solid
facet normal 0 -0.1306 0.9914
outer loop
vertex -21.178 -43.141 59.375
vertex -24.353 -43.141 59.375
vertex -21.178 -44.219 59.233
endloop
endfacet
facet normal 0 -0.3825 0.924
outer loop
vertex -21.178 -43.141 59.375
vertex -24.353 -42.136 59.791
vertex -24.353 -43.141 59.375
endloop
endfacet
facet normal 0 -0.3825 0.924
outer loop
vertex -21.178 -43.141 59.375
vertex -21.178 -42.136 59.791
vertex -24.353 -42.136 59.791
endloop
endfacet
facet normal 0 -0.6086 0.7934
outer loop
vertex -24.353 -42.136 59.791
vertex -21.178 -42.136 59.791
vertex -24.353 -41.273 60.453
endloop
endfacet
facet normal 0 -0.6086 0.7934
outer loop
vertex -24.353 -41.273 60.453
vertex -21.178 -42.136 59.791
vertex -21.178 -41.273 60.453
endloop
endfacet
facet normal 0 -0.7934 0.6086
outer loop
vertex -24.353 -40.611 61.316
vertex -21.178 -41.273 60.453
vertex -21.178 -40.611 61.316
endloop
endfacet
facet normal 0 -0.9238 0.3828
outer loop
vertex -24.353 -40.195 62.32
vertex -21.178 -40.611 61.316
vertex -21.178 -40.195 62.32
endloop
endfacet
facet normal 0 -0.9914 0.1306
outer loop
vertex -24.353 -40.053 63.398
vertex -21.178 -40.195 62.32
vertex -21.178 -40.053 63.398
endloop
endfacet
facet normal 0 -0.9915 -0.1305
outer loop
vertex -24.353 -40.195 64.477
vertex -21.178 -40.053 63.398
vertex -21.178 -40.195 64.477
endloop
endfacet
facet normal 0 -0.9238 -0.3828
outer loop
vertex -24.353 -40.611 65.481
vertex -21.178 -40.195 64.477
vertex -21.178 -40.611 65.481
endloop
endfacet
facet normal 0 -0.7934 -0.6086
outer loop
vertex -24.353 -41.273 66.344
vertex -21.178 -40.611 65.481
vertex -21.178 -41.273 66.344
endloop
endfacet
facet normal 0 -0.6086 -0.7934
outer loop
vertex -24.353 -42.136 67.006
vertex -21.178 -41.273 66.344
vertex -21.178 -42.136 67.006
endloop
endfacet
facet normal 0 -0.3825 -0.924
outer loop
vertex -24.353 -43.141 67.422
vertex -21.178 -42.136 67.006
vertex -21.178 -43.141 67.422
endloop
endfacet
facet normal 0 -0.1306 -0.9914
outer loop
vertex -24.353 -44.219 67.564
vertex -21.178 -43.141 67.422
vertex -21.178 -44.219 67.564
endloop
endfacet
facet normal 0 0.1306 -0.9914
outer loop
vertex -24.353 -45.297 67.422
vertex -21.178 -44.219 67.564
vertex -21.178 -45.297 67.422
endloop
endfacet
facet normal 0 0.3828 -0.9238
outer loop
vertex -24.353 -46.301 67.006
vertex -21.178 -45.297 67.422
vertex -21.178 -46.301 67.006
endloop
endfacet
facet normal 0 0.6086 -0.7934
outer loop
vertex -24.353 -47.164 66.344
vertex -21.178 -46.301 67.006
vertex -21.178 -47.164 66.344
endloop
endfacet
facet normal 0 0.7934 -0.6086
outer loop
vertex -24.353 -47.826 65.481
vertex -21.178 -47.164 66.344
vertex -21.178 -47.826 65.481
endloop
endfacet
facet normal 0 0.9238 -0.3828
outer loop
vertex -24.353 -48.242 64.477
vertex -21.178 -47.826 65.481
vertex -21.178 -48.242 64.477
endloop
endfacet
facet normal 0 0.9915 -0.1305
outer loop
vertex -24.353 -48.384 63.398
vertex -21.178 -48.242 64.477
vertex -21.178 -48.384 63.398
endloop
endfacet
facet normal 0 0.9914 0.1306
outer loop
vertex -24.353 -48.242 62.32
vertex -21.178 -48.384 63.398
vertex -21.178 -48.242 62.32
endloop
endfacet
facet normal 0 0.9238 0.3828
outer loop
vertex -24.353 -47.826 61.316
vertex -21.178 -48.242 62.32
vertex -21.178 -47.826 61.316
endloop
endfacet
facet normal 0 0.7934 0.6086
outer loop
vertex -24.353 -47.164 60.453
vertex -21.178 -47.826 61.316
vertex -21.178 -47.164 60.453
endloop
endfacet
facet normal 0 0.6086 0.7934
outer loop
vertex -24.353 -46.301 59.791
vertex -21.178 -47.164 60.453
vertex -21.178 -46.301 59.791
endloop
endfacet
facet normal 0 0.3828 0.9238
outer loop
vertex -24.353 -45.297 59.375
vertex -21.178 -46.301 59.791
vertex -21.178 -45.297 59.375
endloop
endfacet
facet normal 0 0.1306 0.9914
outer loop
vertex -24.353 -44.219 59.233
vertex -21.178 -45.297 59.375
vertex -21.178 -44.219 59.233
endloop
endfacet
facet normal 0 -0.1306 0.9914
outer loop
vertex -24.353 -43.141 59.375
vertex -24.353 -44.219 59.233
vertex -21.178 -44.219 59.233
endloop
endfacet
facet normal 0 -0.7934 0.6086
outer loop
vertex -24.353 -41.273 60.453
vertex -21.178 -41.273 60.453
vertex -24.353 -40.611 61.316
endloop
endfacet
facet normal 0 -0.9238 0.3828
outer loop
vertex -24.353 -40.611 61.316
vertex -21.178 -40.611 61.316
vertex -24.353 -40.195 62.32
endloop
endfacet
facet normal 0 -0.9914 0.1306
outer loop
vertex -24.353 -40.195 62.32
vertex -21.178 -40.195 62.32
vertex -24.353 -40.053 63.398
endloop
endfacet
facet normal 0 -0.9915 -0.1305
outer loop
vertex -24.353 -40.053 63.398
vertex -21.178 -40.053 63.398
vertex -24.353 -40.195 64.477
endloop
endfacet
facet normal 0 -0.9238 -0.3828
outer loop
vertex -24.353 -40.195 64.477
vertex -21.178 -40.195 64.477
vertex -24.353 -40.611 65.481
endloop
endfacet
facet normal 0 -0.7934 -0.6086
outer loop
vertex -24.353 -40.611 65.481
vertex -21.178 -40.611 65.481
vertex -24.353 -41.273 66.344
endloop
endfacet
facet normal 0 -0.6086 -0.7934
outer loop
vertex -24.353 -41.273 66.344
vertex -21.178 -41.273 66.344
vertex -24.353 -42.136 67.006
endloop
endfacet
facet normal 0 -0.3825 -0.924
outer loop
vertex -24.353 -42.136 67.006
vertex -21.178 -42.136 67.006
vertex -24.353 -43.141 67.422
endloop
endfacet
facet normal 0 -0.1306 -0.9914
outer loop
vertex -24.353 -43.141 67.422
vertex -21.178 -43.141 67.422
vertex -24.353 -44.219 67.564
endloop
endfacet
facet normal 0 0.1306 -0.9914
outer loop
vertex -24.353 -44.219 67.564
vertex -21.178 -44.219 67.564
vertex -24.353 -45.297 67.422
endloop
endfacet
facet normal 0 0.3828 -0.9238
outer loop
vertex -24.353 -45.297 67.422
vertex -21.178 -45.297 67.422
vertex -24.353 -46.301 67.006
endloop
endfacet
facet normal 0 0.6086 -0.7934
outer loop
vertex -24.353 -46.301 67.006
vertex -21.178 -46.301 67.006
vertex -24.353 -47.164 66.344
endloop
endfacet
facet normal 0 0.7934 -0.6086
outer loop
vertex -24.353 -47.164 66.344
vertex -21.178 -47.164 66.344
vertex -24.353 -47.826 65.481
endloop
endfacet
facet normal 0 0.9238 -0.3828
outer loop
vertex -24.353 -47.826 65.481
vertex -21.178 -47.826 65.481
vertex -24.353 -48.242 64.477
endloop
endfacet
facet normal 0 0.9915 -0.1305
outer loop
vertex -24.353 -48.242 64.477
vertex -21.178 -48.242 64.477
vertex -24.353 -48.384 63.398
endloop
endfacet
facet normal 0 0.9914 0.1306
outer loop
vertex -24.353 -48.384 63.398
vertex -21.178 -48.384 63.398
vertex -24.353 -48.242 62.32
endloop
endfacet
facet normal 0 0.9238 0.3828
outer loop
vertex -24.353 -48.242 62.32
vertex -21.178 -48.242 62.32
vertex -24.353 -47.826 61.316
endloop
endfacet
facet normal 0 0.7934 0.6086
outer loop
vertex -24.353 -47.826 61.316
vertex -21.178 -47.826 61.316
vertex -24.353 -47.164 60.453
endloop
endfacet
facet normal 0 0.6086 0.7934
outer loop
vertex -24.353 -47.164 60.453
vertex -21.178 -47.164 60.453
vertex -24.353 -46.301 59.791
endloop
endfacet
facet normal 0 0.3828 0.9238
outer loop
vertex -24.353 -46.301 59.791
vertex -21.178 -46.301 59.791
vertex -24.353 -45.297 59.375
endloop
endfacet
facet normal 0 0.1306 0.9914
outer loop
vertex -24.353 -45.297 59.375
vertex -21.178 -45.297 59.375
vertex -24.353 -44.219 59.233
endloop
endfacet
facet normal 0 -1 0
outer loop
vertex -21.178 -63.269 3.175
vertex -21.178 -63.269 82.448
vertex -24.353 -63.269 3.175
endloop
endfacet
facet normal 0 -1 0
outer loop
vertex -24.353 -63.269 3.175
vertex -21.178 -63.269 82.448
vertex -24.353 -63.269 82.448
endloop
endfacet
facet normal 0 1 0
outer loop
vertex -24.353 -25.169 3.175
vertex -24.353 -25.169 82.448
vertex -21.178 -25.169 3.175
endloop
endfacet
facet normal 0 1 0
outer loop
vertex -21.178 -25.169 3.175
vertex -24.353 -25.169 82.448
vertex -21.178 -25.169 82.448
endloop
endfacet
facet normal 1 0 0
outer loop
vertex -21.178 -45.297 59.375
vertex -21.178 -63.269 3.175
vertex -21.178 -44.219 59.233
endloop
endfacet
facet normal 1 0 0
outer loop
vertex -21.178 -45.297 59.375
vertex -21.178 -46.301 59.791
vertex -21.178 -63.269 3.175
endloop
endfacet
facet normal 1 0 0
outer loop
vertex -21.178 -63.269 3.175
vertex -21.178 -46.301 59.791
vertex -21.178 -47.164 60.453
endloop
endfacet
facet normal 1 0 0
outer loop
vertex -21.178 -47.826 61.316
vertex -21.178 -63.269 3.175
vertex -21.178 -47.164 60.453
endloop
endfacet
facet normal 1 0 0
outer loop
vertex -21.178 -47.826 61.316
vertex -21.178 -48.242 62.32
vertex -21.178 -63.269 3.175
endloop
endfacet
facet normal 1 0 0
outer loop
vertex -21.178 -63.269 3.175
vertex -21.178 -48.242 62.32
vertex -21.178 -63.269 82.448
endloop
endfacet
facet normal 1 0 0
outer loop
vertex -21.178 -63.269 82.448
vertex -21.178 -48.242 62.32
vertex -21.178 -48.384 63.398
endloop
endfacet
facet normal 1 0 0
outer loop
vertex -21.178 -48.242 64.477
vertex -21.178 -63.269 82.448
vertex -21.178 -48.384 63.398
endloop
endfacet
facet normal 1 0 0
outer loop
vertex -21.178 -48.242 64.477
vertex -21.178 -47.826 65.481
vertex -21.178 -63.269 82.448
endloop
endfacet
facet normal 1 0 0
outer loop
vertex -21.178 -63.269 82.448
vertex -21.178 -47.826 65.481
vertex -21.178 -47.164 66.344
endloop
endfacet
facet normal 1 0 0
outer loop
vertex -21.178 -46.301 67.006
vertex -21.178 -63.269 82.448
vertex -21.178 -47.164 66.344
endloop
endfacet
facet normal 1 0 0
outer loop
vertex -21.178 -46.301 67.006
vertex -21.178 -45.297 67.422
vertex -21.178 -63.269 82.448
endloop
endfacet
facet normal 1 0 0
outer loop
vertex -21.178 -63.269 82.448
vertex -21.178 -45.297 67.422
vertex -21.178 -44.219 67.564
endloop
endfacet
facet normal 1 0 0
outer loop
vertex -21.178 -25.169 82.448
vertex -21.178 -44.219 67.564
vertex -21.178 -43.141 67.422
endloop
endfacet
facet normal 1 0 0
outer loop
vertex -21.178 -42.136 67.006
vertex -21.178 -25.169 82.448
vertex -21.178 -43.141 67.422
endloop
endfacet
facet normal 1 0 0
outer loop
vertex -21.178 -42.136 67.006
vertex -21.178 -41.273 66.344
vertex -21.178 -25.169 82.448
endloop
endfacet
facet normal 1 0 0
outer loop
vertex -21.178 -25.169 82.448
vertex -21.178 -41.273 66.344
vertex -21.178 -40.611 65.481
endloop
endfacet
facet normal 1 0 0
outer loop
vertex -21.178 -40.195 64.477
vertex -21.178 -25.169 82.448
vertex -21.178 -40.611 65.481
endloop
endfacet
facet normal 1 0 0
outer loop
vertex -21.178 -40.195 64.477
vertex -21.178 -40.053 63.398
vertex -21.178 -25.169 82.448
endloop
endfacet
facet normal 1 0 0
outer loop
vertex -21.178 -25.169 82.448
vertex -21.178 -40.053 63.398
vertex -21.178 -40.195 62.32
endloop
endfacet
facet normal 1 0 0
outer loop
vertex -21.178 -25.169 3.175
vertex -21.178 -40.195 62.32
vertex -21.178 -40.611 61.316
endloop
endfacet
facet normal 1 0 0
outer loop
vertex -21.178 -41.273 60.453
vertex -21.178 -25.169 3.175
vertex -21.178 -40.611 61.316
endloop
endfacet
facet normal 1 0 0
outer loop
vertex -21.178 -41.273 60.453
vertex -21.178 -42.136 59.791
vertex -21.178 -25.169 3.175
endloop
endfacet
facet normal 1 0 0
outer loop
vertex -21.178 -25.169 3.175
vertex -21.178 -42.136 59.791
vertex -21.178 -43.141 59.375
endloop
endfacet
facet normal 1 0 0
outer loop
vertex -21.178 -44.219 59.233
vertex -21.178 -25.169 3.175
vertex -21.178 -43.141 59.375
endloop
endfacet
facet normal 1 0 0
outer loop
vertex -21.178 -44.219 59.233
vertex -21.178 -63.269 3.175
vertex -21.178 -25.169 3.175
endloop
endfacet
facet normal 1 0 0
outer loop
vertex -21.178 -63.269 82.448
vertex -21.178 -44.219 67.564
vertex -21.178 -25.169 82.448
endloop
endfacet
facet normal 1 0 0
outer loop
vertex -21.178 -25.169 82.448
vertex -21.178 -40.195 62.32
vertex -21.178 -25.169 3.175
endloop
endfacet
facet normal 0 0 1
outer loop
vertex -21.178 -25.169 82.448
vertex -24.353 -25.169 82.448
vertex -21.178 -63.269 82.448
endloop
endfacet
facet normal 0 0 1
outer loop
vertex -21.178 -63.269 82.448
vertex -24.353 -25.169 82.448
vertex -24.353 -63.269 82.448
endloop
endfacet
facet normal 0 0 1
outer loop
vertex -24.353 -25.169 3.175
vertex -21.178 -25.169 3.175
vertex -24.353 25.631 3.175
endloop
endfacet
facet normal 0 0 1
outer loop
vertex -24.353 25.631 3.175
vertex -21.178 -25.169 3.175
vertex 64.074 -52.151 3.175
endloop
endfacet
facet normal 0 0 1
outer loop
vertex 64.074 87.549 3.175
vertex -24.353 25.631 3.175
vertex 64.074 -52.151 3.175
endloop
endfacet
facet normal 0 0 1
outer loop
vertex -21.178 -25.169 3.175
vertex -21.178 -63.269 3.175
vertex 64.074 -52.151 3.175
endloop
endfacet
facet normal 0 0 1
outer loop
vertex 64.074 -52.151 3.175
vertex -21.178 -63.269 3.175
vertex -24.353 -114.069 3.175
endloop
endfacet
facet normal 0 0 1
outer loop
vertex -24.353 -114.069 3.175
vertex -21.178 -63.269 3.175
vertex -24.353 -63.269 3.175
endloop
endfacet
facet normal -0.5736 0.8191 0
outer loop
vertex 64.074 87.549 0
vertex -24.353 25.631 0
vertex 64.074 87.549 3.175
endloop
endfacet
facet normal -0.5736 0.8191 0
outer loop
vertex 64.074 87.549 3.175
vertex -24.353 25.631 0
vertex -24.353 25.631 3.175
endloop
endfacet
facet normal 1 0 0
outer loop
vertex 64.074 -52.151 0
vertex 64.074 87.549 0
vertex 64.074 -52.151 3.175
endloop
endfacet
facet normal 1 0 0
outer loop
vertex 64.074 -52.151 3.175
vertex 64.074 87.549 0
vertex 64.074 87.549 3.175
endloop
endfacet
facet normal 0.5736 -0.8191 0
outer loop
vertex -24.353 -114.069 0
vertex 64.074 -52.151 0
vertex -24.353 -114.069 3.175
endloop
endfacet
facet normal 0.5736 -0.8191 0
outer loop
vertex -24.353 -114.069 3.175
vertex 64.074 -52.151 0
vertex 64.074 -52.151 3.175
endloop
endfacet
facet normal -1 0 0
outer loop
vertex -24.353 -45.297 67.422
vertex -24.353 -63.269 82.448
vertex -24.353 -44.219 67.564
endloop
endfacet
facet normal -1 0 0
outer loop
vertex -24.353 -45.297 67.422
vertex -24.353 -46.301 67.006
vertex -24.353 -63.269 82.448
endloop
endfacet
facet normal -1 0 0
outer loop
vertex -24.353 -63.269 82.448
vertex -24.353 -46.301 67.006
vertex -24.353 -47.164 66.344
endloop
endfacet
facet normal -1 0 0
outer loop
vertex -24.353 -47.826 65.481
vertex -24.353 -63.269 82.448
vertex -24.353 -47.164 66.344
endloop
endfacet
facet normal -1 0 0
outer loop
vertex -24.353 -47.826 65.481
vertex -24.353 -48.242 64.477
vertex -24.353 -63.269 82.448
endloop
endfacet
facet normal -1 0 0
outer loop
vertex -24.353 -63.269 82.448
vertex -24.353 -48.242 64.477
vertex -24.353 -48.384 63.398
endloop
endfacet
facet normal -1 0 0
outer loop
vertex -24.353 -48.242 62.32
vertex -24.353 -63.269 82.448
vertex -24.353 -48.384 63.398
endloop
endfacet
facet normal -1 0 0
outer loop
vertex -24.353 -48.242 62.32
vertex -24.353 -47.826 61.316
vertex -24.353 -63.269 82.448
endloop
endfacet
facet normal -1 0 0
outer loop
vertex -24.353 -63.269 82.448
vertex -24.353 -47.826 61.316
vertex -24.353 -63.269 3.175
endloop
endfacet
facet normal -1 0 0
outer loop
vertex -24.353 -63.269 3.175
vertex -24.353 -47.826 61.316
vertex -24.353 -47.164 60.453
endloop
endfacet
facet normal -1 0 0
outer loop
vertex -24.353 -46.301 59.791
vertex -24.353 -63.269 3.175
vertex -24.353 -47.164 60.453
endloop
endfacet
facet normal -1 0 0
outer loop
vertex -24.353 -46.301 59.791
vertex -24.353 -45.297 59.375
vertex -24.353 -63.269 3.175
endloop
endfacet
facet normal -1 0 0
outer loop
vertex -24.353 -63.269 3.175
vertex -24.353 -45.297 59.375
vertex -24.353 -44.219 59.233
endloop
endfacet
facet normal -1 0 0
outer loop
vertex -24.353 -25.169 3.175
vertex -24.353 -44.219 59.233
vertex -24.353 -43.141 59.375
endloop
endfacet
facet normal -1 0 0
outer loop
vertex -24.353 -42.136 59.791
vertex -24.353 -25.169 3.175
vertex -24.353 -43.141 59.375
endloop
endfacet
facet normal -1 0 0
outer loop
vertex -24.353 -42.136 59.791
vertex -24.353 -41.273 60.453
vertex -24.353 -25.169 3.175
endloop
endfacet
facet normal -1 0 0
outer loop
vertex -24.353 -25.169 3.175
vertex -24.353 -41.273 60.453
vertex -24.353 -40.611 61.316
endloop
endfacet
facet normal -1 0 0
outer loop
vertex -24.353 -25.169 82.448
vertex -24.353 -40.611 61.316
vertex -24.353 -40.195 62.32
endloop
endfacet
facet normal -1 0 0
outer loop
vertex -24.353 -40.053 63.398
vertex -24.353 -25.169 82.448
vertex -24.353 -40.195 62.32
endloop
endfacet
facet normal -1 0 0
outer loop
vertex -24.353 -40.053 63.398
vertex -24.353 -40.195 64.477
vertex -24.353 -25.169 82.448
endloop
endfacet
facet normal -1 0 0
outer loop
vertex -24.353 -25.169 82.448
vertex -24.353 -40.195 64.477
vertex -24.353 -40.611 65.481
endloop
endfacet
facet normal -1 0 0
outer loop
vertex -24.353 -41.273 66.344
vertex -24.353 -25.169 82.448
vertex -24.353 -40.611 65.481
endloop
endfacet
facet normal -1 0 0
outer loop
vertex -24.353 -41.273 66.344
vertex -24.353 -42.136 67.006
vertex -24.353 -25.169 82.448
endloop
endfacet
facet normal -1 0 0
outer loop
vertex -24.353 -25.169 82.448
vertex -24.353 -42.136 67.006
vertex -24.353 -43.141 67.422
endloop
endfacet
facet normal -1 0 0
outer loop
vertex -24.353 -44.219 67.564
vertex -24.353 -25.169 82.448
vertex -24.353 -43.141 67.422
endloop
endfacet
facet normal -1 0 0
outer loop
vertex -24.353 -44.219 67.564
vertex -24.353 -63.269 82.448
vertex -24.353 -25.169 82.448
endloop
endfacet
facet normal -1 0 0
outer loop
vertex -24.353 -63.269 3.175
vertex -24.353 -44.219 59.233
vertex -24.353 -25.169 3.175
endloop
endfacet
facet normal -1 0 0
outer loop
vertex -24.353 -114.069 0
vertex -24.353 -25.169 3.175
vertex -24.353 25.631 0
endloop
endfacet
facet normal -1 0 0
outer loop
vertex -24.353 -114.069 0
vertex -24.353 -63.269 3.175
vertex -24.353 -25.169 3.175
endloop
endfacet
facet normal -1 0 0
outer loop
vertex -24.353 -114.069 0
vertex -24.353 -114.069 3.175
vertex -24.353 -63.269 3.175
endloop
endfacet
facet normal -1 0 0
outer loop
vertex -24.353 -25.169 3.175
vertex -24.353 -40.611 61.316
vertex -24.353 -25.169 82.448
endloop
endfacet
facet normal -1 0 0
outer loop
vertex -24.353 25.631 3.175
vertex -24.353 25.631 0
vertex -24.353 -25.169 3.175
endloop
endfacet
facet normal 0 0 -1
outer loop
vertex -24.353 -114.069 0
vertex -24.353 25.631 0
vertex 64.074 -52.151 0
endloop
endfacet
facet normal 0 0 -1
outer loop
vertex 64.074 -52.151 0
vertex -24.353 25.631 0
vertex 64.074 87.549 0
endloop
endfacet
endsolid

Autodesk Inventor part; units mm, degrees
ref_plane "YZ Plane" through (0, 0, 0) normal (1, 0, 0) x (0, 1, 0)
ref_plane "XZ Plane" through (0, 0, 0) normal (0, 1, 0) x (-1, 0, 0)
ref_plane "XY Plane" through (0, 0, 0) normal (0, 0, 1) x (1, 0, 0)
sketch "Sketch1" plane through (0, 0, 0) normal (0, 0, 1) x (1, 0, 0)
  line L0 (-24.3533, 25.6313) -> (-24.3533, -114.0687)
  line L1 (-24.3533, -114.0687) -> (64.0742, -52.1511)
  line L2 (-24.3533, -114.0687) -> (83.5967, -114.0687) construction
  line L3 (64.0742, -52.1511) -> (64.0742, 87.5489)
  line L4 (64.0742, 87.5489) -> (-24.3533, 25.6313)
  point P0 (0, 0)
  dimension "d0" = 139.7
  dimension "d1" = 107.95
  dimension "d2" = 35
  dimension "d3" = 139.7
extrude "Extrusion1" add sketch "Sketch1" along normal blind 3.175
sketch "Sketch2" plane through (0, 0, 3.175) normal (0, 0, 1) x (1, 0, 0)
  line L0 (-24.3533, 25.6313) -> (-24.3533, -114.0687) projected
  line L1 (-21.1783, -44.2187) -> (-21.1783, -25.1687)
  line L2 (-21.1783, -25.1687) -> (-24.3533, -25.1687)
  line L3 (-21.1783, -44.2187) -> (-21.1783, -63.2687)
  line L4 (-21.1783, -63.2687) -> (-24.3533, -63.2687)
  line L5 (-24.3533, -25.1687) -> (-24.3533, -63.2687)
  point P0 (0, 0)
  dimension "d7" = 19.05
  dimension "d8" = 19.05
extrude "Extrusion2" add sketch "Sketch2" along normal blind 79.2734
sketch "Sketch3" plane through (-24.3533, -114.0687, 0) normal (-1, 0, 0) x (0, 0, 1)
  line L0 (82.4484, 88.9) -> (63.3984, 88.9)
  line L1 (63.3984, 88.9) -> (63.3984, 69.85)
  line L2 (63.3984, 69.85) -> (82.4484, 69.85)
  line L3 (82.4484, 69.85) -> (82.4484, 88.9)
  point P0 (0, 114.0687)
  dimension "d11" = 19.05
  dimension "d12" = 19.05
hole "Hole1" at (-24.3533, -44.2187, 63.3984) direction (1, 0, 0) diameter 8.3312 end through all
properties part number "Right Abdomen"
